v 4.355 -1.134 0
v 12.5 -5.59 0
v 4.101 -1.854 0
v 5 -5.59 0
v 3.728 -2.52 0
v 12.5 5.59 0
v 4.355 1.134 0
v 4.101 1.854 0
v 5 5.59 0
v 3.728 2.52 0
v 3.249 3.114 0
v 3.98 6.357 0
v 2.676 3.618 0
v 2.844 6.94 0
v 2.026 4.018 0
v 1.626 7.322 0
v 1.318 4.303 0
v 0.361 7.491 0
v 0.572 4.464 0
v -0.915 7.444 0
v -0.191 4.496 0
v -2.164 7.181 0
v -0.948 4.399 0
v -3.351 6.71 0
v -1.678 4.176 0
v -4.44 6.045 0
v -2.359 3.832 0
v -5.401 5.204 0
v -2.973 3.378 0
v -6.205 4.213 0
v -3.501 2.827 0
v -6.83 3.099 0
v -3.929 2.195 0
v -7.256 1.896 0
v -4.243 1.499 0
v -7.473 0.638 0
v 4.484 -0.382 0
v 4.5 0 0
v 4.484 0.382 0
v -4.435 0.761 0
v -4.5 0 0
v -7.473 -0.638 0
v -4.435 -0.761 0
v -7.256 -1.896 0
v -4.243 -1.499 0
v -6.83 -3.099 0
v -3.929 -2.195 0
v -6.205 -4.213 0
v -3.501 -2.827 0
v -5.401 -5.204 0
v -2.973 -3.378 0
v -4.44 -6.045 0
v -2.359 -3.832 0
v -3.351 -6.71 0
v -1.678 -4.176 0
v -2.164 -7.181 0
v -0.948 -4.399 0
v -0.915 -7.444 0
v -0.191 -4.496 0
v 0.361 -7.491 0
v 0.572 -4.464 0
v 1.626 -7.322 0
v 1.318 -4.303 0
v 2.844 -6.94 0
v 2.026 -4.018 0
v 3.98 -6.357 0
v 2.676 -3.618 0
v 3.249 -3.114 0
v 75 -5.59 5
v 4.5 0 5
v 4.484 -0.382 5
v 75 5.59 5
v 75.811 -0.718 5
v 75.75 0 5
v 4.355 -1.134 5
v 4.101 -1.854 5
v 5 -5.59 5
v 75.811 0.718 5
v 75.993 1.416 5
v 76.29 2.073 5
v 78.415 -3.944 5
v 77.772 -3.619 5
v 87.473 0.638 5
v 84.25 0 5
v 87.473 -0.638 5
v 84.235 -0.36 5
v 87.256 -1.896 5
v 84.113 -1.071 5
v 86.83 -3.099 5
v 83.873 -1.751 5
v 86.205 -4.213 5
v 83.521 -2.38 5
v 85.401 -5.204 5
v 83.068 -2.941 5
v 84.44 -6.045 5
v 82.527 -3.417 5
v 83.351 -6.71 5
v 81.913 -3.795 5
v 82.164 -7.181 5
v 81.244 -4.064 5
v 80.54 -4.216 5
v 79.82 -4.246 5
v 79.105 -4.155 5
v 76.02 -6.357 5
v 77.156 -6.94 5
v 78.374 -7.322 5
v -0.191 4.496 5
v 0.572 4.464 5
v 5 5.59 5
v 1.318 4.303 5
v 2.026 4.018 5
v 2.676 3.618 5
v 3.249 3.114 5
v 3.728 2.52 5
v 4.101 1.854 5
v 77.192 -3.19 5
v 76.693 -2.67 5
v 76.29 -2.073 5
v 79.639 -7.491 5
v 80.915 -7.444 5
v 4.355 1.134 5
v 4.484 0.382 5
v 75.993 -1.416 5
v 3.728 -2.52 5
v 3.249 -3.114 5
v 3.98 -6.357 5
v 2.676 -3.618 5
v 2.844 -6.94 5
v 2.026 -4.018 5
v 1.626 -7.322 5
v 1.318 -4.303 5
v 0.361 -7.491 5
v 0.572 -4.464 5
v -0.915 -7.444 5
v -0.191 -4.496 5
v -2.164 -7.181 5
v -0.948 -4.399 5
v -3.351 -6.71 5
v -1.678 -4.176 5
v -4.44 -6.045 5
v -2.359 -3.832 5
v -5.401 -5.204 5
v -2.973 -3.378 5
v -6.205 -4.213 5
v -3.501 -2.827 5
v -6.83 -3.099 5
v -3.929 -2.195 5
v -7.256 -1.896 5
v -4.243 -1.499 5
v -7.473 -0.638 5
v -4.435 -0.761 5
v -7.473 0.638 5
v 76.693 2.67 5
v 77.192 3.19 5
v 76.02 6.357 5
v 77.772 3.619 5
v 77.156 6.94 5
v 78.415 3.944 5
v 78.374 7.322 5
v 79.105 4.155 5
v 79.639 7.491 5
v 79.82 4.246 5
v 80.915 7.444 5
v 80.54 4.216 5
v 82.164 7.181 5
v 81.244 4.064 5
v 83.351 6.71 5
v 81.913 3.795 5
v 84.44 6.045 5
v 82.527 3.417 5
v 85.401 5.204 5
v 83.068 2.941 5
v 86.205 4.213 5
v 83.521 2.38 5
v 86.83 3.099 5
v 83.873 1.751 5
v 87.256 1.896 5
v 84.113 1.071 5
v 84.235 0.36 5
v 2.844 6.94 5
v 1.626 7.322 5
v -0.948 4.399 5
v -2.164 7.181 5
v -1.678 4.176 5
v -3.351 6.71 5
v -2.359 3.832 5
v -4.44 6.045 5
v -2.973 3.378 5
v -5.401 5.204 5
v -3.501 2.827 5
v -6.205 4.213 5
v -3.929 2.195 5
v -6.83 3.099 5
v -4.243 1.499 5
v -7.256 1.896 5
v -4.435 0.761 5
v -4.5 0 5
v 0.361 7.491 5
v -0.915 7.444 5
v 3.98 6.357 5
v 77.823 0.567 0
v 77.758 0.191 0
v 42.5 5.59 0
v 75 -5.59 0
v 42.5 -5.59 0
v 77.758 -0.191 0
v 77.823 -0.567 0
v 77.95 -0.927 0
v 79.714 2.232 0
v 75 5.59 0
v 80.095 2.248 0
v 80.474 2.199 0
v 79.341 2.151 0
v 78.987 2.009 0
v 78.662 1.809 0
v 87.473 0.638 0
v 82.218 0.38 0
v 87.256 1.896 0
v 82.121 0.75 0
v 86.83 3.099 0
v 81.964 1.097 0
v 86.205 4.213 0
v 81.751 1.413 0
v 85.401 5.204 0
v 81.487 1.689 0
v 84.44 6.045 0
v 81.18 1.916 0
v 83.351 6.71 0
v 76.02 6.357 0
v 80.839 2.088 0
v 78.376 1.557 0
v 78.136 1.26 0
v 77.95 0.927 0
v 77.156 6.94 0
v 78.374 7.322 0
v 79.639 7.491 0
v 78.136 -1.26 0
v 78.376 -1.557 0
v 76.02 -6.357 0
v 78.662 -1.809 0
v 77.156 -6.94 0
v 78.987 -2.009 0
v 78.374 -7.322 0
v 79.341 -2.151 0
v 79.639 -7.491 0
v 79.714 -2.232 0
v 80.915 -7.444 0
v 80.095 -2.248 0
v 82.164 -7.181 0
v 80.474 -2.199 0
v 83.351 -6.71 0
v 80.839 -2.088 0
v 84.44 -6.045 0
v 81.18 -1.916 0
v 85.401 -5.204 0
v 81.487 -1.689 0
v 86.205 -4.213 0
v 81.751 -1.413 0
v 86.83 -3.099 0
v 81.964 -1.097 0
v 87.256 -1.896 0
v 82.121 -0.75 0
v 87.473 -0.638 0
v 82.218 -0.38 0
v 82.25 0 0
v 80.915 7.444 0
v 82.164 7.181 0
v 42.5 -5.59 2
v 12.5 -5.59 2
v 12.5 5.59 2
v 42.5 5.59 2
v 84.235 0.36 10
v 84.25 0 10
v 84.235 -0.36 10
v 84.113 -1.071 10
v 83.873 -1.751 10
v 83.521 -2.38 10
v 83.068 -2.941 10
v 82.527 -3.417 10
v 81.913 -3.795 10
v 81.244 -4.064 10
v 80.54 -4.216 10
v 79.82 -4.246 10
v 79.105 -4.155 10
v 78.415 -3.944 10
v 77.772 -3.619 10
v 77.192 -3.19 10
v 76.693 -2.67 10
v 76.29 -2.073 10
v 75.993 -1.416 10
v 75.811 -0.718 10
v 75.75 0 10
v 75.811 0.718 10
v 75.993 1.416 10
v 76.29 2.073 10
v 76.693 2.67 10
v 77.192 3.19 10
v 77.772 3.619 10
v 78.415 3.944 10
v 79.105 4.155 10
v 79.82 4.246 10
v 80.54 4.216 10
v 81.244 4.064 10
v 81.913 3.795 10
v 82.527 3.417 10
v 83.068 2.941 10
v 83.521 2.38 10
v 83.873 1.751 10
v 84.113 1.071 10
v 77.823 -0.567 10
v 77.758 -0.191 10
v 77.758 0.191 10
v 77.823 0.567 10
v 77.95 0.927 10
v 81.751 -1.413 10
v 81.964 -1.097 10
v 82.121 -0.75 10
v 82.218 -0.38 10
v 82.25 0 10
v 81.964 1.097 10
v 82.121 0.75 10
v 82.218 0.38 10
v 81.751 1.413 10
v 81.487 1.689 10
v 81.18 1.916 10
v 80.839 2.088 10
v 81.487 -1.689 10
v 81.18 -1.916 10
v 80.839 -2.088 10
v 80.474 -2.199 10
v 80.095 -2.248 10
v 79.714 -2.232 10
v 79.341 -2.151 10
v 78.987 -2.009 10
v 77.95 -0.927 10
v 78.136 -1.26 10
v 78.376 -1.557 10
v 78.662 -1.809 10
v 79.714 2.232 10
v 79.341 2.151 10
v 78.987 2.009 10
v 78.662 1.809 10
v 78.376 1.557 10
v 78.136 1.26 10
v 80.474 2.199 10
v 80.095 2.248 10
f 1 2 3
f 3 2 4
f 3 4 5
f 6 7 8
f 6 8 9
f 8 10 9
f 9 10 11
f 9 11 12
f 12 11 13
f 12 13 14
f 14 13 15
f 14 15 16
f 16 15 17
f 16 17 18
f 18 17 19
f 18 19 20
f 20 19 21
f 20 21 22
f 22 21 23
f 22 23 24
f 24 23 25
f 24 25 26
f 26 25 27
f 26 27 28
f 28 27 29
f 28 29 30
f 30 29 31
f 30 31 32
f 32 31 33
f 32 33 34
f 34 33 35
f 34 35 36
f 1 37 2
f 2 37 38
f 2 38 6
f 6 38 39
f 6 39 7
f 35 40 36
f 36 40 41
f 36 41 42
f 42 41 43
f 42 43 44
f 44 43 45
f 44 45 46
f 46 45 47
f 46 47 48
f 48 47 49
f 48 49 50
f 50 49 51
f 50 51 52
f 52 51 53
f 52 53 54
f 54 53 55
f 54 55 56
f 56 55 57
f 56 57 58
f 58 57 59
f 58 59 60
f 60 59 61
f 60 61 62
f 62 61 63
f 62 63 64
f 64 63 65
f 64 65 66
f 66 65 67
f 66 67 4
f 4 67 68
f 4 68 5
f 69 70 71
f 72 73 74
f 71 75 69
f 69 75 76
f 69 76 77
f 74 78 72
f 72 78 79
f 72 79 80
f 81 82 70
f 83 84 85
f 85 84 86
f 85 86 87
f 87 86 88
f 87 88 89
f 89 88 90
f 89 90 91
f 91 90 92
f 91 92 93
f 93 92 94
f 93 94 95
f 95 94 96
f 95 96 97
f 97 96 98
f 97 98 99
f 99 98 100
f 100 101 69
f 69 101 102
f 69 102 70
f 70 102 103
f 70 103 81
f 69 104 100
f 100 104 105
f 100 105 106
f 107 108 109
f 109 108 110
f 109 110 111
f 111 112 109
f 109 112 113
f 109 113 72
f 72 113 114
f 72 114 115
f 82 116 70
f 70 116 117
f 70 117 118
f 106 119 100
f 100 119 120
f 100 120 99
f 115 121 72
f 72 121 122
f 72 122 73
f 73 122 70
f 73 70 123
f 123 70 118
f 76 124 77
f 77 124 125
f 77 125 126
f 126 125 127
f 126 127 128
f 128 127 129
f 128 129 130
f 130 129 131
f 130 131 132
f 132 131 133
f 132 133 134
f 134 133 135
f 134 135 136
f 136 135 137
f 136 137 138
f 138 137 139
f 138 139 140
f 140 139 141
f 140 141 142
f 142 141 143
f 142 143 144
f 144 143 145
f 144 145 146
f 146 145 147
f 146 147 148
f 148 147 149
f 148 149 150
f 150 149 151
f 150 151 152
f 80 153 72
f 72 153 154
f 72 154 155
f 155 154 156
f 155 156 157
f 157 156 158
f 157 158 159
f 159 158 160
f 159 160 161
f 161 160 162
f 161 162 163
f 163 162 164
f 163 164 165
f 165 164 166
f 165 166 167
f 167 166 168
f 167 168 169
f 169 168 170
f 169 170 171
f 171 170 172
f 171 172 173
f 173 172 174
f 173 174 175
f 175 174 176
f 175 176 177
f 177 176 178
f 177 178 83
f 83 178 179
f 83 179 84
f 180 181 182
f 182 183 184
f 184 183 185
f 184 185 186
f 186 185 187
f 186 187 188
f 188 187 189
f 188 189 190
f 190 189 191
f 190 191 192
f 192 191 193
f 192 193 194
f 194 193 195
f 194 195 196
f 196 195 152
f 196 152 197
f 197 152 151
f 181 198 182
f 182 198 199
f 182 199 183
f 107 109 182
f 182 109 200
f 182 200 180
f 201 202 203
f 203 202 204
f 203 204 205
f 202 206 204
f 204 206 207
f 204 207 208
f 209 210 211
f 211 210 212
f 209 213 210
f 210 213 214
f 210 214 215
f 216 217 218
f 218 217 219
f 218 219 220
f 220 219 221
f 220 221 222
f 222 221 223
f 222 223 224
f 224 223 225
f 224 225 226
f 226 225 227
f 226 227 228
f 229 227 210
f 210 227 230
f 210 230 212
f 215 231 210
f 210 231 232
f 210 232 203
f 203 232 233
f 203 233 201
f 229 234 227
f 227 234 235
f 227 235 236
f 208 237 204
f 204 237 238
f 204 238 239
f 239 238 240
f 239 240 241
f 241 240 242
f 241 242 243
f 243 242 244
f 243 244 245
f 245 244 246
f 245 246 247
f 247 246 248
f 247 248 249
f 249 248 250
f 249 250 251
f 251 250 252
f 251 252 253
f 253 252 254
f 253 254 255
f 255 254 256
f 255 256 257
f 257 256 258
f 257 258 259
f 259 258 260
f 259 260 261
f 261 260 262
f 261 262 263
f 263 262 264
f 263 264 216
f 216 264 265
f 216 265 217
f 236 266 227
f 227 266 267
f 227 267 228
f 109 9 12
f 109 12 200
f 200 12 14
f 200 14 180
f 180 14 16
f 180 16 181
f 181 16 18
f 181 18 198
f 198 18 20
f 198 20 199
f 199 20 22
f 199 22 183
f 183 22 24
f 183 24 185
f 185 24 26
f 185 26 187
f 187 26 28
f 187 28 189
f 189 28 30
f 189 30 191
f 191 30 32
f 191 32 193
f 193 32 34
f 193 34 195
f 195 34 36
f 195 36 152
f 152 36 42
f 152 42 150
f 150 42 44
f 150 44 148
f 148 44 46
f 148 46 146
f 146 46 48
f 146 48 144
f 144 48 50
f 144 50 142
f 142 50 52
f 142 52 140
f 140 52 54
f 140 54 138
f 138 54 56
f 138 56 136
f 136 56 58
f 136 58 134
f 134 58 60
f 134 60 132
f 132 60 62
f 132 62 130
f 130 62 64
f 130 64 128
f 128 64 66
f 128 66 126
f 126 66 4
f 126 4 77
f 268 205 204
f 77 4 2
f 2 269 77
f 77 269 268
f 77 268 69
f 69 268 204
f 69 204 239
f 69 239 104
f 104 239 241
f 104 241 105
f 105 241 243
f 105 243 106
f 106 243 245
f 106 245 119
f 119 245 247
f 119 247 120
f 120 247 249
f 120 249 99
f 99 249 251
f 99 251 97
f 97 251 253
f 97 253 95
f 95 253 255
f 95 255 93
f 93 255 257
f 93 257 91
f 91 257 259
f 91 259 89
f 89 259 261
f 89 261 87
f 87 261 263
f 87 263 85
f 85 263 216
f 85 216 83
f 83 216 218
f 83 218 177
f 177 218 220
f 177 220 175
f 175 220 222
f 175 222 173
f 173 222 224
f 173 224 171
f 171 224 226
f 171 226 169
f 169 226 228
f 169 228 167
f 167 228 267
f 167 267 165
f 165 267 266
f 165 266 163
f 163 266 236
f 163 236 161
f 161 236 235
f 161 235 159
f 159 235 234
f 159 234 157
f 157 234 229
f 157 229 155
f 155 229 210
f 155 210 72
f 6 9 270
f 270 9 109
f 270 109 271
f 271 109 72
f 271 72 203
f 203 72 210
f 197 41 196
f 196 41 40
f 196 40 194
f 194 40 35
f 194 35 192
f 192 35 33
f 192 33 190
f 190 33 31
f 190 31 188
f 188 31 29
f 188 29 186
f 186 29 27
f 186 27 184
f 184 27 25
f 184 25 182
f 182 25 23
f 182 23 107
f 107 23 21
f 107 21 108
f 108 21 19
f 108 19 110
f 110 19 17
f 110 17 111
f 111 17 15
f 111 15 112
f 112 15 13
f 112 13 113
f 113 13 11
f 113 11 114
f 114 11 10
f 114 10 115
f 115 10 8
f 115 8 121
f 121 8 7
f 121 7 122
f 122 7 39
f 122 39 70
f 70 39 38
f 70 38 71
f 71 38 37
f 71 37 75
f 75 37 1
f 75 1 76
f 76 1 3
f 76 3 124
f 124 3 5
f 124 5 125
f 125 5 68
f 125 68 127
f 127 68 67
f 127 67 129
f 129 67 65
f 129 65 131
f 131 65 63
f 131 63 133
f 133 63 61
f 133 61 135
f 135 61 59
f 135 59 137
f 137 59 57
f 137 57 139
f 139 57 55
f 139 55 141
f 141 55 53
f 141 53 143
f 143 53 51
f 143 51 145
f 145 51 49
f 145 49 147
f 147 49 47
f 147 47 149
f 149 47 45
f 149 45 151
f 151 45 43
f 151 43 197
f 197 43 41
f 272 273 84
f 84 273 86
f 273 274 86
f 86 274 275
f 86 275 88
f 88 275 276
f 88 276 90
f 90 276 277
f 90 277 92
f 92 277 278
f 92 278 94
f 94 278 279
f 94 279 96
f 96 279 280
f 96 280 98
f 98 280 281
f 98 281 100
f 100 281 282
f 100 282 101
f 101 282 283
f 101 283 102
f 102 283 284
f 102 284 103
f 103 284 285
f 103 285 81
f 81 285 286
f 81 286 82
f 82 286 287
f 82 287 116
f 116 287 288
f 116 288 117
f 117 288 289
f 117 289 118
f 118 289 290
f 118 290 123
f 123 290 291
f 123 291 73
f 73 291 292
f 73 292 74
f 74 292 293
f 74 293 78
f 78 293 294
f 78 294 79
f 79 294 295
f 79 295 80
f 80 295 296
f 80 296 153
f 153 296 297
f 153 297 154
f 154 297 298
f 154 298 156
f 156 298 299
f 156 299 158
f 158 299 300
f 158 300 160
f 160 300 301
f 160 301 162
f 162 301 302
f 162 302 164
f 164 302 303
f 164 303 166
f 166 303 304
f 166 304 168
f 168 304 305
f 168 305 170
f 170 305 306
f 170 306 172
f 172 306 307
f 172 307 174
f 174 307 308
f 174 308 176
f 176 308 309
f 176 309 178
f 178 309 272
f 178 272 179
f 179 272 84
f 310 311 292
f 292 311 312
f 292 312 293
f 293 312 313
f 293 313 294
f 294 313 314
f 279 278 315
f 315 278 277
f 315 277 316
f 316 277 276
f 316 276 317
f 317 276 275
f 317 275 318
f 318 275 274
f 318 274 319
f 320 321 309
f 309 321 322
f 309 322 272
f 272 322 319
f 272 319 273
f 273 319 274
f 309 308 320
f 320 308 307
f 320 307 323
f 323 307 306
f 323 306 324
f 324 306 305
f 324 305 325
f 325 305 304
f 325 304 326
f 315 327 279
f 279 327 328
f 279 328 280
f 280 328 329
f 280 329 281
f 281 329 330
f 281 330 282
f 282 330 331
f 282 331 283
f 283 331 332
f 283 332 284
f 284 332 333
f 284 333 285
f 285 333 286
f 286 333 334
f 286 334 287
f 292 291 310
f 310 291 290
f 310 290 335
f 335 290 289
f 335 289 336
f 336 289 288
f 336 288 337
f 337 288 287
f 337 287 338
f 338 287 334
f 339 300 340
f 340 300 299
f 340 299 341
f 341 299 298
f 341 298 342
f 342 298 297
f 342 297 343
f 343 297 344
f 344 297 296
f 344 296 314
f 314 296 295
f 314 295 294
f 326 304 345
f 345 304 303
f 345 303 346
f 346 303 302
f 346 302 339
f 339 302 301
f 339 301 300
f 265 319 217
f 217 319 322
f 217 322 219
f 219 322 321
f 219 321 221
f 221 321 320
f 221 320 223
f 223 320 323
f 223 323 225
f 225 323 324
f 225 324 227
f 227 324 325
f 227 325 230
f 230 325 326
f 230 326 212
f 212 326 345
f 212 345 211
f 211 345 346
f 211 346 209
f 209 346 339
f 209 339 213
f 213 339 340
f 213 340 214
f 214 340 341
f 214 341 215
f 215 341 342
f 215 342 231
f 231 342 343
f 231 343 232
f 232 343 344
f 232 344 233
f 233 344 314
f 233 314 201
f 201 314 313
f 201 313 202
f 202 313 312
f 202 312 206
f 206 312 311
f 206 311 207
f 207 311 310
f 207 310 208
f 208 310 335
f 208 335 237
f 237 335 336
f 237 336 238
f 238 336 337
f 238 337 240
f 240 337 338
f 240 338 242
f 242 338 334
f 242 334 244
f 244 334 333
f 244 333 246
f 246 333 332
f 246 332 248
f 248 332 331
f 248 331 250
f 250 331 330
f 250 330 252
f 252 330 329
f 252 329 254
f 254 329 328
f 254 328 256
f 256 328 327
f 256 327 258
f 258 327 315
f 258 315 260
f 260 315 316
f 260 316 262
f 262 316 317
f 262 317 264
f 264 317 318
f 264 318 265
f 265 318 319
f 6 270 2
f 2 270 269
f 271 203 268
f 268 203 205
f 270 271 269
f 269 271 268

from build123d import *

# Parameters (mm, degrees)
SKETCH_1_R          = 4.5
EXTRUDE_1_DEPTH     = 5
SKETCH_2_R          = 4.25
EXTRUDE_2_DEPTH     = 5
SKETCH_3_R          = 2.25
CUT_EXTRUDE_1_DEPTH = 18
CUT_EXTRUDE_2_REACH = 91.037
SKETCH_4_W          = 30
SKETCH_4_H          = 2


with BuildPart() as part:
    # 스케치1 → 보스-돌출1 (new body)
    with BuildSketch(Plane.XY):
        with BuildLine():
            Line((5, 5.590169944), (75, 5.590169944))
            ThreePointArc((75, 5.590169944), (87.5, 0), (75, -5.590169944))
            Line((75, -5.590169944), (5, -5.590169944))
            ThreePointArc((5, -5.590169944), (-7.5, 0), (5, 5.590169944))
        make_face()
        Circle(SKETCH_1_R, mode=Mode.SUBTRACT)
    extrude(amount=EXTRUDE_1_DEPTH)

    # 스케치2 → 보스-돌출2 (add)
    with BuildSketch(Plane.XY.offset(5)):
        with Locations((80, 0)):
            Circle(SKETCH_2_R)
    extrude(amount=EXTRUDE_2_DEPTH)

    # 스케치3 → 컷-돌출1 (cut)
    with BuildSketch(Plane.XY.offset(10)):
        with Locations((80, 0)):
            Circle(SKETCH_3_R)
    extrude(amount=-CUT_EXTRUDE_1_DEPTH, mode=Mode.SUBTRACT)

    # 스케치4 → 컷-돌출2 (cut, up to next)
    with BuildSketch(Plane(origin=(0, 5.590169944, 0), x_dir=(1, 0, 0), z_dir=(0, 1, 0)), mode=Mode.PRIVATE) as cut_extrude_2_sk1:
        with Locations((27.5, -1)):
            Rectangle(SKETCH_4_W, SKETCH_4_H)
    cut_extrude_2_tool1 = extrude(cut_extrude_2_sk1.sketch, amount=-CUT_EXTRUDE_2_REACH, mode=Mode.PRIVATE) & part.part
    add(cut_extrude_2_tool1.solids().sort_by_distance((27.5, 5.59017, 1))[0], mode=Mode.SUBTRACT)


solid = part.part
